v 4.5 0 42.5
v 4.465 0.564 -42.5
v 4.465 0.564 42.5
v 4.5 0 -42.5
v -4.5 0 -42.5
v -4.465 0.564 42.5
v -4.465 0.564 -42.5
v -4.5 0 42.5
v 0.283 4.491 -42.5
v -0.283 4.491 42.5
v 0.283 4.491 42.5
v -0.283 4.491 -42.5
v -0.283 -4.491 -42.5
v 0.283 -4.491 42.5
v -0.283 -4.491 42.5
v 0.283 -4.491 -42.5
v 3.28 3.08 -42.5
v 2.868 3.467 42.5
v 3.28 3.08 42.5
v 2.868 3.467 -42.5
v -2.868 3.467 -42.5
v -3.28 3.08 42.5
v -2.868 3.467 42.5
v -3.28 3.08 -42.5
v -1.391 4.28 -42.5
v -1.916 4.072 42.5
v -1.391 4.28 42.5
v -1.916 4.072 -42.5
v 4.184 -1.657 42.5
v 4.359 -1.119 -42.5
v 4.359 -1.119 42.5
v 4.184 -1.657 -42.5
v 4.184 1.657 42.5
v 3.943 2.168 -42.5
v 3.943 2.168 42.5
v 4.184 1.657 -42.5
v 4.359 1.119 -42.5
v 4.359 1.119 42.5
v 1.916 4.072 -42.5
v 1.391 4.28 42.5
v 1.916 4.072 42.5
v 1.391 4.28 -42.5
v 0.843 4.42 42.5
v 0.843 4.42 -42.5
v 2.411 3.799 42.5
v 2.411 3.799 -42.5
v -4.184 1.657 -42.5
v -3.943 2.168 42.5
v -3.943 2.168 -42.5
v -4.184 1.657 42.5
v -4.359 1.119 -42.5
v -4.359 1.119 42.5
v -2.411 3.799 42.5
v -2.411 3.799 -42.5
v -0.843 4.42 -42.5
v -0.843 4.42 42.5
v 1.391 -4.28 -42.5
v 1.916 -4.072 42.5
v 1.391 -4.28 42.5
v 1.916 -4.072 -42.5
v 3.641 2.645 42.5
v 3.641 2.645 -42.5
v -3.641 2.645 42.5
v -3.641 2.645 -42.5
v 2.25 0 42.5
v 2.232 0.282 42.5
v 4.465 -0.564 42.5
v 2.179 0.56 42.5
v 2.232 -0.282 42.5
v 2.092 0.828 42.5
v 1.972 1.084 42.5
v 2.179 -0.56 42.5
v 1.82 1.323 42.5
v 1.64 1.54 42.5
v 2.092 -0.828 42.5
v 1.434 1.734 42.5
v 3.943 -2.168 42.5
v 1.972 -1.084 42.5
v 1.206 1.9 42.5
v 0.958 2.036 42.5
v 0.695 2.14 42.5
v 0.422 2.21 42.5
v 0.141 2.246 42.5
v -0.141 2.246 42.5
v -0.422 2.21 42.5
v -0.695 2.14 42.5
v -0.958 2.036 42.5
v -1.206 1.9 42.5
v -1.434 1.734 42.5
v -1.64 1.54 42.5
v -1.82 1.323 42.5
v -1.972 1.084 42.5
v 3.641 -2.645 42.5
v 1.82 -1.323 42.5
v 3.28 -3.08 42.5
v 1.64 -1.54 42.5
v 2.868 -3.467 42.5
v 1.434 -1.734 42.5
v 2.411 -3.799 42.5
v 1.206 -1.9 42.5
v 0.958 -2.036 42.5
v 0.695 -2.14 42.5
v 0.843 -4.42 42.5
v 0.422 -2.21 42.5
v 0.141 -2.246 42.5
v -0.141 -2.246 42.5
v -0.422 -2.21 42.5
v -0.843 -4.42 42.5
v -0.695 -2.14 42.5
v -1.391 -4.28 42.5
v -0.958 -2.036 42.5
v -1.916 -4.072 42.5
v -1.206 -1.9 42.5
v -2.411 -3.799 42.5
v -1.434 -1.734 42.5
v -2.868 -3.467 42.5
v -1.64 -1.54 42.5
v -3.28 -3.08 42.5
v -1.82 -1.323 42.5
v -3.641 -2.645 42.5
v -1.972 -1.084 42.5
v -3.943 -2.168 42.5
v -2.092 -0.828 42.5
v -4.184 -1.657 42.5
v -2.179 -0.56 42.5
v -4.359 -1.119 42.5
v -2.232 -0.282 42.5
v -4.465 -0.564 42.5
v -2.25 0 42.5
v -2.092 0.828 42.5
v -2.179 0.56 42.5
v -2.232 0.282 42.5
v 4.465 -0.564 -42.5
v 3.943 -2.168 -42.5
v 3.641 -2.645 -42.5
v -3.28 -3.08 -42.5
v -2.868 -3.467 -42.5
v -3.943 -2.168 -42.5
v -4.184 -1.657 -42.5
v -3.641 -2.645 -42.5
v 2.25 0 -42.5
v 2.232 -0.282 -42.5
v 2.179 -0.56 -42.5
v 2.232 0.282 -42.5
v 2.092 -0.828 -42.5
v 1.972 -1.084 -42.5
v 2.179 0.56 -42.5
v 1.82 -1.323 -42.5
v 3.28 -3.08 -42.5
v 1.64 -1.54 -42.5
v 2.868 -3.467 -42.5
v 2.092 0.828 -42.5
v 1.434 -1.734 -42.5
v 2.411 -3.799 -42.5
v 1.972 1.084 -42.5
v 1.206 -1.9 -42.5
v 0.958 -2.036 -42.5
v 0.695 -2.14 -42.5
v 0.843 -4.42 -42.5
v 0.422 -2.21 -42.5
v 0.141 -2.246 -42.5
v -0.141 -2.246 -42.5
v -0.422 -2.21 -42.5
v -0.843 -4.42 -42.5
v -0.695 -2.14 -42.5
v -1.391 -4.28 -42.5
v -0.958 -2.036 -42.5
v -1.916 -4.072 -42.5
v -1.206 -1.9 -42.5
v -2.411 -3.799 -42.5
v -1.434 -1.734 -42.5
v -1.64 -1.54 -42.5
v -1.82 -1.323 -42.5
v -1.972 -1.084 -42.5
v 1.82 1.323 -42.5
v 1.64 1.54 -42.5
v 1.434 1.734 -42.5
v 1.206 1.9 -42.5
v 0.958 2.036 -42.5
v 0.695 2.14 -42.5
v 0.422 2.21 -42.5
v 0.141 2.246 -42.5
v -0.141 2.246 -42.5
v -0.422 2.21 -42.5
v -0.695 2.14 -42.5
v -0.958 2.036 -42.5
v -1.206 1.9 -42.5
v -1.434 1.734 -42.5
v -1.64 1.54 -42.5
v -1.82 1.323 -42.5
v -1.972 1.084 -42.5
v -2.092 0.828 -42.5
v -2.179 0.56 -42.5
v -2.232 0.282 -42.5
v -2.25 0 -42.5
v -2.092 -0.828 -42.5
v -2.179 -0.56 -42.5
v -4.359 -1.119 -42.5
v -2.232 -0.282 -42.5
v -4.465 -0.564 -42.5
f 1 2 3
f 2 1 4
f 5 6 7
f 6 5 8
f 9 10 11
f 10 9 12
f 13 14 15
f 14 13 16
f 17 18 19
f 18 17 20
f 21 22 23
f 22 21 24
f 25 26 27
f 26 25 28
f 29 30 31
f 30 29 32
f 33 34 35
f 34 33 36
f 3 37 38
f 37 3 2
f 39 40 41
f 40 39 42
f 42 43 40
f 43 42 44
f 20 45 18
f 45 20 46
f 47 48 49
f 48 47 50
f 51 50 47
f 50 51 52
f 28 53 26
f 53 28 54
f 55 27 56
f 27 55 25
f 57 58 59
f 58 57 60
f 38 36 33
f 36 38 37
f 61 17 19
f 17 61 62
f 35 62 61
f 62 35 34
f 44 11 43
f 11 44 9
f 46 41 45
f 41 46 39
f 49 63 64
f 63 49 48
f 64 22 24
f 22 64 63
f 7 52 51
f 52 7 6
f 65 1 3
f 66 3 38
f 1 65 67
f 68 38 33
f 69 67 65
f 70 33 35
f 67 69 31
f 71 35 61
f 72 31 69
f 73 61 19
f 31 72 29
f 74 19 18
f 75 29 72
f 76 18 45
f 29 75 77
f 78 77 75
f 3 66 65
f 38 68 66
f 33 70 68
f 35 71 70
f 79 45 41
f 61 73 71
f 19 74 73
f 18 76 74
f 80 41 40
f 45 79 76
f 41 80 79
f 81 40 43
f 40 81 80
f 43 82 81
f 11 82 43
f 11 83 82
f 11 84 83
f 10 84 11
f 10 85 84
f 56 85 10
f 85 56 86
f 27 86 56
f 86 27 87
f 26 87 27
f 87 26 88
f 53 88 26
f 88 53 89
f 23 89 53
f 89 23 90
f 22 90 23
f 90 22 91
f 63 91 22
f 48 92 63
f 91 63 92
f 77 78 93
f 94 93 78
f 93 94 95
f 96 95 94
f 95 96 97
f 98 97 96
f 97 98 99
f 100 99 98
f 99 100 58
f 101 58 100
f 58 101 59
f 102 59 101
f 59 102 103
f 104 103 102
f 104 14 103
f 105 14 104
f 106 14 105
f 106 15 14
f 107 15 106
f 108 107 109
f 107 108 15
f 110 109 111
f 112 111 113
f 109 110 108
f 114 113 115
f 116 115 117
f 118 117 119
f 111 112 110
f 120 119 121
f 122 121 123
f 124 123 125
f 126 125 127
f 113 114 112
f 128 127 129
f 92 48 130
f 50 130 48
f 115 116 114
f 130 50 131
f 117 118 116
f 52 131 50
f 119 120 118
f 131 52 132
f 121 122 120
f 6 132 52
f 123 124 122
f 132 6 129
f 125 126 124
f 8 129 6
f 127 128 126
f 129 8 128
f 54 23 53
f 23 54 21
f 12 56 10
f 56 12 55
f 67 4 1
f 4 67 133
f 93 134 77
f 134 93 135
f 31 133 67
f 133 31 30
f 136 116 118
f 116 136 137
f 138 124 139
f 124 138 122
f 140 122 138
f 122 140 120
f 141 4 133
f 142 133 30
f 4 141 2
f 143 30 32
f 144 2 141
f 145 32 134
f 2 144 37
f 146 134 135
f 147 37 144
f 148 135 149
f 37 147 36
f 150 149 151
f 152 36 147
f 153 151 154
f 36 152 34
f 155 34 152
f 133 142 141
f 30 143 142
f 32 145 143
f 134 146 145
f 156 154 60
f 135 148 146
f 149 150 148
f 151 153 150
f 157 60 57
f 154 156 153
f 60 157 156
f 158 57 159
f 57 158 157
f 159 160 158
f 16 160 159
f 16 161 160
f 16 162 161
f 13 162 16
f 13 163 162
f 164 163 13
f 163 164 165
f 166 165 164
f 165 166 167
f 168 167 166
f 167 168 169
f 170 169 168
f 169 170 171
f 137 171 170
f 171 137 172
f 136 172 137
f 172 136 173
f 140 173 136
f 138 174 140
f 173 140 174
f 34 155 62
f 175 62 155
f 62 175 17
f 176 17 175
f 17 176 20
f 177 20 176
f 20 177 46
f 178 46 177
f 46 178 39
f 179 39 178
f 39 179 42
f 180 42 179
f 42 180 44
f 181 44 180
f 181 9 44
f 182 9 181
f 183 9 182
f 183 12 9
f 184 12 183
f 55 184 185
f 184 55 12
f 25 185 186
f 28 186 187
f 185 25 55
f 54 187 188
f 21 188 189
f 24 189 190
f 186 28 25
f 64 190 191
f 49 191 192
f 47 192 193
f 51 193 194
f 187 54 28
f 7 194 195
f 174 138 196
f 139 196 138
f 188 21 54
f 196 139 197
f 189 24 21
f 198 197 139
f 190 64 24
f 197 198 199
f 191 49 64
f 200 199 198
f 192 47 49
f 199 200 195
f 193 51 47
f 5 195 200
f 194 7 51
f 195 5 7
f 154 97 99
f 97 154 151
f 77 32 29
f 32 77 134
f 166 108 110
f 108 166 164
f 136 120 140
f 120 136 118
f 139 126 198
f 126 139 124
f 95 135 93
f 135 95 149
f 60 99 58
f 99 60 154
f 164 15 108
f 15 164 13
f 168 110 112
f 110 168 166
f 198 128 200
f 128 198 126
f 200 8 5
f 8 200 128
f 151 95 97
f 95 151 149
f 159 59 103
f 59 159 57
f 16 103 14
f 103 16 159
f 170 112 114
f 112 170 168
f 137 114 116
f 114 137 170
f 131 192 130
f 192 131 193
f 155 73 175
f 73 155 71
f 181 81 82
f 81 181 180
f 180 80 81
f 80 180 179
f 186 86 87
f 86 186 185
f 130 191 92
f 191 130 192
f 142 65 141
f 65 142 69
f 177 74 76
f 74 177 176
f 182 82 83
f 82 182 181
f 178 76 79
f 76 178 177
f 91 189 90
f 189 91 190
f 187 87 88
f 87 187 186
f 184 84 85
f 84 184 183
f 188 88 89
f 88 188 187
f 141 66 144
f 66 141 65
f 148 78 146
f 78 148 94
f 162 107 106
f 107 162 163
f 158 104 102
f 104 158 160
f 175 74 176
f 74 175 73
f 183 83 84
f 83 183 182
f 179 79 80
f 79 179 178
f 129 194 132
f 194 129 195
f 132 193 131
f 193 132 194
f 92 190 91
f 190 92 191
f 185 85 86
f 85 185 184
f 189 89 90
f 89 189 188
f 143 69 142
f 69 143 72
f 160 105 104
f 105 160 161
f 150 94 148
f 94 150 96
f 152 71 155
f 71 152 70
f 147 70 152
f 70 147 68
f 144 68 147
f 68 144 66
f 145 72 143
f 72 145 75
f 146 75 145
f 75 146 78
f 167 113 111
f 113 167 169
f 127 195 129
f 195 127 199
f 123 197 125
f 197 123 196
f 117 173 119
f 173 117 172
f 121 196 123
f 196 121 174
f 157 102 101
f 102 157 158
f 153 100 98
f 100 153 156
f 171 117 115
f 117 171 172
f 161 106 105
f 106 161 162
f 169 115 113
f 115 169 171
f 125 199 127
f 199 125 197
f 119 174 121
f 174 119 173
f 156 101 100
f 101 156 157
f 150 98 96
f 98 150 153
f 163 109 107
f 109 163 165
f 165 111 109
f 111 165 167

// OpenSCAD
$fn = 50;


difference() {
	union() {
		translate(v = [0, 0, -42.5000000000]) {
			cylinder(h = 85, r = 4.5000000000);
		}
	}
	union() {
		translate(v = [0, 0, -100.0000000000]) {
			cylinder(h = 200, r = 2.2500000000);
		}
	}
}
